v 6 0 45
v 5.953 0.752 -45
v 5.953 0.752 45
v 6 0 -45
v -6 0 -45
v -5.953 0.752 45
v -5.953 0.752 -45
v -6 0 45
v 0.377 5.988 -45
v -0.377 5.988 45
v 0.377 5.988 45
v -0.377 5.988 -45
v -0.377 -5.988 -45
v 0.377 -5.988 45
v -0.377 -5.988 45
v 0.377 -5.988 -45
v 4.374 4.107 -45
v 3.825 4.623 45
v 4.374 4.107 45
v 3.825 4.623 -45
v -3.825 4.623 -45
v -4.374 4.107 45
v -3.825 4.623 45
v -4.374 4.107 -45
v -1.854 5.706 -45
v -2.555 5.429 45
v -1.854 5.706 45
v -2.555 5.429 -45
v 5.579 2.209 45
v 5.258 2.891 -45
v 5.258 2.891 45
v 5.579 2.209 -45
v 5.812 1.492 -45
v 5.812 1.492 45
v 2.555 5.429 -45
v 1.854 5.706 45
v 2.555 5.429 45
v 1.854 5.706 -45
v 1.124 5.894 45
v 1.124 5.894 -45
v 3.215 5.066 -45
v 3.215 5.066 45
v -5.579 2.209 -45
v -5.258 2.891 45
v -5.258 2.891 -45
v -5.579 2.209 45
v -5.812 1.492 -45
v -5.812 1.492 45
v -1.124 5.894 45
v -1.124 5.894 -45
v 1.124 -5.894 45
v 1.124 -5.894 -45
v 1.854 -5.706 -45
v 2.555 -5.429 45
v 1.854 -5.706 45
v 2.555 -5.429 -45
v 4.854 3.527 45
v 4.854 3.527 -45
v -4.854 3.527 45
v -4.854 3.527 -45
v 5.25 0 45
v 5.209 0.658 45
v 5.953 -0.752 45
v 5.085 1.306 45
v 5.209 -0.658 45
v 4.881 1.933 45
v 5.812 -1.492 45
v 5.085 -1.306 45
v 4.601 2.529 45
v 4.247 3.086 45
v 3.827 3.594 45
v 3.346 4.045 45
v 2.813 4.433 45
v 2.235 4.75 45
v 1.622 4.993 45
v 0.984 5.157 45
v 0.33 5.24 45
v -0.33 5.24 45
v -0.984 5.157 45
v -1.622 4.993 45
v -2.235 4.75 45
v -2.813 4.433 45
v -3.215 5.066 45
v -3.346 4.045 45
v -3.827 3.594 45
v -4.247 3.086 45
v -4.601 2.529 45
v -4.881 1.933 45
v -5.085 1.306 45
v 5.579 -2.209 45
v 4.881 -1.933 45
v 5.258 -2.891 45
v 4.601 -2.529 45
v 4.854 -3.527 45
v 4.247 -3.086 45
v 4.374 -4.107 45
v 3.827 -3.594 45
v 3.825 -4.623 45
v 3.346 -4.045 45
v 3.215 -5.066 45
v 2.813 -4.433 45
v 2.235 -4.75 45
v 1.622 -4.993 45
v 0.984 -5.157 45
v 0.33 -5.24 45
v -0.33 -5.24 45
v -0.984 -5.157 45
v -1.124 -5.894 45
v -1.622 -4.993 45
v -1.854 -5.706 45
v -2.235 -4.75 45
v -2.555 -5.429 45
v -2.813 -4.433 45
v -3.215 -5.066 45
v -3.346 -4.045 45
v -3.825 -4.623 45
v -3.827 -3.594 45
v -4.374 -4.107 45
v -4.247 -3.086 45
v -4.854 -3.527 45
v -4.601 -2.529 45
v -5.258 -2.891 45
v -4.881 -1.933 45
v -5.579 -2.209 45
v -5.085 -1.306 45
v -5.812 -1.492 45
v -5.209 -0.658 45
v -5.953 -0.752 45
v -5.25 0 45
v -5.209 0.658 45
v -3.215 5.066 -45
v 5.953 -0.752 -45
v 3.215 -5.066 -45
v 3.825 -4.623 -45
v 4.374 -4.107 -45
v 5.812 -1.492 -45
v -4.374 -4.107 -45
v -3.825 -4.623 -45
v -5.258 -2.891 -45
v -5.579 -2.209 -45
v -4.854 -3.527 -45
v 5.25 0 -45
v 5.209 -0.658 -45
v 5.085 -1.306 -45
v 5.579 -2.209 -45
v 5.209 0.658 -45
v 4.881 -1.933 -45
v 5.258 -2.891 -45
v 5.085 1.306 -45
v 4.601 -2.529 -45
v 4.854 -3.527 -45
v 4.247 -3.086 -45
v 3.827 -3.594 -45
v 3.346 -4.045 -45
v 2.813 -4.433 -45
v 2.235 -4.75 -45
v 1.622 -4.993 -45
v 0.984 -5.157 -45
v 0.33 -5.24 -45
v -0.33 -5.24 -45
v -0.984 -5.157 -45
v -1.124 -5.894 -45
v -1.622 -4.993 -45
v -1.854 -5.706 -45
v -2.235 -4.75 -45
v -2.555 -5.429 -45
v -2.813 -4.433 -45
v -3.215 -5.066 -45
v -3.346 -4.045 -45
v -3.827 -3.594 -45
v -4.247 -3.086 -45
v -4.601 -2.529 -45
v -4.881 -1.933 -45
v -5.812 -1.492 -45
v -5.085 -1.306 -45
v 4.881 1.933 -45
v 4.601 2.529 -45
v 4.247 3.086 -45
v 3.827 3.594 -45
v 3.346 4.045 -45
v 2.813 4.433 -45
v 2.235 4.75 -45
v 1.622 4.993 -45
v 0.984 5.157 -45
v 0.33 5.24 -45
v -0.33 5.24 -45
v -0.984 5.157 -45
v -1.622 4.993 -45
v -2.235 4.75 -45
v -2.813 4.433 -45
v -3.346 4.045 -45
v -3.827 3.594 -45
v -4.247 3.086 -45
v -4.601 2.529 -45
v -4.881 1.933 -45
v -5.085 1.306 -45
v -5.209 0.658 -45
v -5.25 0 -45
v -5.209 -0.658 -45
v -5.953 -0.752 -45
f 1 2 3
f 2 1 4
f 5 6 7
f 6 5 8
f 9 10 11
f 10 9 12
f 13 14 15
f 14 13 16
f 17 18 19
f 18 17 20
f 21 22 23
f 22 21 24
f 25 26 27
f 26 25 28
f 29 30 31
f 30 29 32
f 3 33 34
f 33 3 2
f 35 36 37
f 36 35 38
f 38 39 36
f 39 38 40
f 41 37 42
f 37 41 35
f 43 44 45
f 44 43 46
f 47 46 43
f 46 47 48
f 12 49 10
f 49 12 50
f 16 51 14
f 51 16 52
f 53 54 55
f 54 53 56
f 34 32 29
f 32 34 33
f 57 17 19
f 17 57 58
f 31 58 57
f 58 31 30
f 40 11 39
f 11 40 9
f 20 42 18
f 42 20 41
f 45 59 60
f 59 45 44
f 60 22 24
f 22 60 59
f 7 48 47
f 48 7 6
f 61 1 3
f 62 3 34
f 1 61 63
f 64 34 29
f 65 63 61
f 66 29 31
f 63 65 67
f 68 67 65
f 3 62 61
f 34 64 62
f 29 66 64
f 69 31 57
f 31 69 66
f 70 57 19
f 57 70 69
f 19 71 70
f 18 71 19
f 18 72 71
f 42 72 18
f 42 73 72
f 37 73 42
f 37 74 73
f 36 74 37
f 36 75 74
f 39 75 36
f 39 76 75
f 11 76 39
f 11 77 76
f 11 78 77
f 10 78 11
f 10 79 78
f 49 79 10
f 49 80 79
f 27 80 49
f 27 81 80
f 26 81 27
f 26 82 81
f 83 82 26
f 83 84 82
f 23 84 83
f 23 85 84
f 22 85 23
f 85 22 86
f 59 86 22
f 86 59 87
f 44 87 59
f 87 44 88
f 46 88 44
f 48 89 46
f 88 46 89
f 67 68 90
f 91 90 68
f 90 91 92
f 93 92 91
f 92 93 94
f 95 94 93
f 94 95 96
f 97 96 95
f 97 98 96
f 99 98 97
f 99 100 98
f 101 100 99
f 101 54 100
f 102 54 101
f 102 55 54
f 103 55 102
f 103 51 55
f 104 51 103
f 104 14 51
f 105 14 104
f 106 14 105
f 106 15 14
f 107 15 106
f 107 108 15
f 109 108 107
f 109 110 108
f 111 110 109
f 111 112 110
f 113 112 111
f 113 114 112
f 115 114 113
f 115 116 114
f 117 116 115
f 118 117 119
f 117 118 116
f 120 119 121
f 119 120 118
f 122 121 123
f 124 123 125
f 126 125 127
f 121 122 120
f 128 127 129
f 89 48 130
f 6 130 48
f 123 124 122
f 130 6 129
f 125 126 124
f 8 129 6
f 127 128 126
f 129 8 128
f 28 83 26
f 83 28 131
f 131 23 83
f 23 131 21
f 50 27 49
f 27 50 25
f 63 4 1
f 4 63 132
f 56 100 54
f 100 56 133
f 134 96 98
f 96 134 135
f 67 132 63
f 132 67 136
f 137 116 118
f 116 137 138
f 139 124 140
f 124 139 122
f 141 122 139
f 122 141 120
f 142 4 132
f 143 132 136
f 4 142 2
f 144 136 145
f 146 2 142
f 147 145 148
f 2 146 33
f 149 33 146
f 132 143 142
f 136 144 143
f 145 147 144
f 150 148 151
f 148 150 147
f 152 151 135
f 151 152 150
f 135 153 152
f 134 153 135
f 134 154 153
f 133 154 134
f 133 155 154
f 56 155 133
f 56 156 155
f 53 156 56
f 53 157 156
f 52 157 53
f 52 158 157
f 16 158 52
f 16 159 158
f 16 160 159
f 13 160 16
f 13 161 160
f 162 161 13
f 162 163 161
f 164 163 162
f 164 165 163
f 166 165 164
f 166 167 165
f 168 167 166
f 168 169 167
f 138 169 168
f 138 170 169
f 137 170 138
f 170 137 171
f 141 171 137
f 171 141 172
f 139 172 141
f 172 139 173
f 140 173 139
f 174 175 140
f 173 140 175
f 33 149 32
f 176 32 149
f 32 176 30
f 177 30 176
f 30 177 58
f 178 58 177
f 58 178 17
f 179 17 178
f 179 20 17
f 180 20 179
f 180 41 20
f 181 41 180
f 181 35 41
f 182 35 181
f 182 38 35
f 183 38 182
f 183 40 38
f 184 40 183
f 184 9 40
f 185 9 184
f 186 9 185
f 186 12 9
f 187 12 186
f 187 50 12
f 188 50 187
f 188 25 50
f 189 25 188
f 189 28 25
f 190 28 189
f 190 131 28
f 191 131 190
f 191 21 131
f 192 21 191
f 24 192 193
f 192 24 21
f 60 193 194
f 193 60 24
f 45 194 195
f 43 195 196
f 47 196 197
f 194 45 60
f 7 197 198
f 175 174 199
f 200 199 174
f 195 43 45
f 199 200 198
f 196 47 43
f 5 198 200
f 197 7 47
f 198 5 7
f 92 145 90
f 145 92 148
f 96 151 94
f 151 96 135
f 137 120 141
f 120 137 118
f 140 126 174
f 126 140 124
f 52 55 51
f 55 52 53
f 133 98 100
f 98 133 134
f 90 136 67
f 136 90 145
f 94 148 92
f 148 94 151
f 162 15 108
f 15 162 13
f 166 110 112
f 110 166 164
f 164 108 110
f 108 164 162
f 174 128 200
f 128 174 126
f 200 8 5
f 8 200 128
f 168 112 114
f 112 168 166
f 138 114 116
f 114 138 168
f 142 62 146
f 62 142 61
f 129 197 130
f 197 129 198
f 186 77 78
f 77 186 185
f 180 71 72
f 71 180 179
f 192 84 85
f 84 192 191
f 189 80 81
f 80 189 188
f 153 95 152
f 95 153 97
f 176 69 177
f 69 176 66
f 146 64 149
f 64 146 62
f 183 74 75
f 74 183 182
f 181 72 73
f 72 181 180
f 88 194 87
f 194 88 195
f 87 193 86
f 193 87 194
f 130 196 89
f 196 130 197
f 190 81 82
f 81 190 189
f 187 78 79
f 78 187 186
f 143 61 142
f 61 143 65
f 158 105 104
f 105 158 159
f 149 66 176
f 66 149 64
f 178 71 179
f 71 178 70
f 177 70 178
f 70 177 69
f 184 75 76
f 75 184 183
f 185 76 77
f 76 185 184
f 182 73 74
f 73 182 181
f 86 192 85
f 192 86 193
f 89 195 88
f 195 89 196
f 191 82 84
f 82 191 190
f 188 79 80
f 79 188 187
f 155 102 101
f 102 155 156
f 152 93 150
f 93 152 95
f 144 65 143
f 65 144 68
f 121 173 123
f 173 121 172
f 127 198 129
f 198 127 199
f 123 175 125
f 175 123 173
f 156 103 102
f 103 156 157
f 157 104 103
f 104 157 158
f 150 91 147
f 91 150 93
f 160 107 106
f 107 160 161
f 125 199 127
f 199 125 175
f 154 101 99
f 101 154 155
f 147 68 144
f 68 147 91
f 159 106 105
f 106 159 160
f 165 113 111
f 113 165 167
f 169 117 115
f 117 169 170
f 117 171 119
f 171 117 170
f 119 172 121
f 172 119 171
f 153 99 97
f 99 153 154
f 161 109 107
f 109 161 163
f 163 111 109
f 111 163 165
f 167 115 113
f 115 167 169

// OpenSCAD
$fn = 50;


difference() {
	union() {
		translate(v = [0, 0, -45.0000000000]) {
			cylinder(h = 90, r = 6.0000000000);
		}
	}
	union() {
		translate(v = [0, 0, -100.0000000000]) {
			cylinder(h = 200, r = 5.2500000000);
		}
	}
}
